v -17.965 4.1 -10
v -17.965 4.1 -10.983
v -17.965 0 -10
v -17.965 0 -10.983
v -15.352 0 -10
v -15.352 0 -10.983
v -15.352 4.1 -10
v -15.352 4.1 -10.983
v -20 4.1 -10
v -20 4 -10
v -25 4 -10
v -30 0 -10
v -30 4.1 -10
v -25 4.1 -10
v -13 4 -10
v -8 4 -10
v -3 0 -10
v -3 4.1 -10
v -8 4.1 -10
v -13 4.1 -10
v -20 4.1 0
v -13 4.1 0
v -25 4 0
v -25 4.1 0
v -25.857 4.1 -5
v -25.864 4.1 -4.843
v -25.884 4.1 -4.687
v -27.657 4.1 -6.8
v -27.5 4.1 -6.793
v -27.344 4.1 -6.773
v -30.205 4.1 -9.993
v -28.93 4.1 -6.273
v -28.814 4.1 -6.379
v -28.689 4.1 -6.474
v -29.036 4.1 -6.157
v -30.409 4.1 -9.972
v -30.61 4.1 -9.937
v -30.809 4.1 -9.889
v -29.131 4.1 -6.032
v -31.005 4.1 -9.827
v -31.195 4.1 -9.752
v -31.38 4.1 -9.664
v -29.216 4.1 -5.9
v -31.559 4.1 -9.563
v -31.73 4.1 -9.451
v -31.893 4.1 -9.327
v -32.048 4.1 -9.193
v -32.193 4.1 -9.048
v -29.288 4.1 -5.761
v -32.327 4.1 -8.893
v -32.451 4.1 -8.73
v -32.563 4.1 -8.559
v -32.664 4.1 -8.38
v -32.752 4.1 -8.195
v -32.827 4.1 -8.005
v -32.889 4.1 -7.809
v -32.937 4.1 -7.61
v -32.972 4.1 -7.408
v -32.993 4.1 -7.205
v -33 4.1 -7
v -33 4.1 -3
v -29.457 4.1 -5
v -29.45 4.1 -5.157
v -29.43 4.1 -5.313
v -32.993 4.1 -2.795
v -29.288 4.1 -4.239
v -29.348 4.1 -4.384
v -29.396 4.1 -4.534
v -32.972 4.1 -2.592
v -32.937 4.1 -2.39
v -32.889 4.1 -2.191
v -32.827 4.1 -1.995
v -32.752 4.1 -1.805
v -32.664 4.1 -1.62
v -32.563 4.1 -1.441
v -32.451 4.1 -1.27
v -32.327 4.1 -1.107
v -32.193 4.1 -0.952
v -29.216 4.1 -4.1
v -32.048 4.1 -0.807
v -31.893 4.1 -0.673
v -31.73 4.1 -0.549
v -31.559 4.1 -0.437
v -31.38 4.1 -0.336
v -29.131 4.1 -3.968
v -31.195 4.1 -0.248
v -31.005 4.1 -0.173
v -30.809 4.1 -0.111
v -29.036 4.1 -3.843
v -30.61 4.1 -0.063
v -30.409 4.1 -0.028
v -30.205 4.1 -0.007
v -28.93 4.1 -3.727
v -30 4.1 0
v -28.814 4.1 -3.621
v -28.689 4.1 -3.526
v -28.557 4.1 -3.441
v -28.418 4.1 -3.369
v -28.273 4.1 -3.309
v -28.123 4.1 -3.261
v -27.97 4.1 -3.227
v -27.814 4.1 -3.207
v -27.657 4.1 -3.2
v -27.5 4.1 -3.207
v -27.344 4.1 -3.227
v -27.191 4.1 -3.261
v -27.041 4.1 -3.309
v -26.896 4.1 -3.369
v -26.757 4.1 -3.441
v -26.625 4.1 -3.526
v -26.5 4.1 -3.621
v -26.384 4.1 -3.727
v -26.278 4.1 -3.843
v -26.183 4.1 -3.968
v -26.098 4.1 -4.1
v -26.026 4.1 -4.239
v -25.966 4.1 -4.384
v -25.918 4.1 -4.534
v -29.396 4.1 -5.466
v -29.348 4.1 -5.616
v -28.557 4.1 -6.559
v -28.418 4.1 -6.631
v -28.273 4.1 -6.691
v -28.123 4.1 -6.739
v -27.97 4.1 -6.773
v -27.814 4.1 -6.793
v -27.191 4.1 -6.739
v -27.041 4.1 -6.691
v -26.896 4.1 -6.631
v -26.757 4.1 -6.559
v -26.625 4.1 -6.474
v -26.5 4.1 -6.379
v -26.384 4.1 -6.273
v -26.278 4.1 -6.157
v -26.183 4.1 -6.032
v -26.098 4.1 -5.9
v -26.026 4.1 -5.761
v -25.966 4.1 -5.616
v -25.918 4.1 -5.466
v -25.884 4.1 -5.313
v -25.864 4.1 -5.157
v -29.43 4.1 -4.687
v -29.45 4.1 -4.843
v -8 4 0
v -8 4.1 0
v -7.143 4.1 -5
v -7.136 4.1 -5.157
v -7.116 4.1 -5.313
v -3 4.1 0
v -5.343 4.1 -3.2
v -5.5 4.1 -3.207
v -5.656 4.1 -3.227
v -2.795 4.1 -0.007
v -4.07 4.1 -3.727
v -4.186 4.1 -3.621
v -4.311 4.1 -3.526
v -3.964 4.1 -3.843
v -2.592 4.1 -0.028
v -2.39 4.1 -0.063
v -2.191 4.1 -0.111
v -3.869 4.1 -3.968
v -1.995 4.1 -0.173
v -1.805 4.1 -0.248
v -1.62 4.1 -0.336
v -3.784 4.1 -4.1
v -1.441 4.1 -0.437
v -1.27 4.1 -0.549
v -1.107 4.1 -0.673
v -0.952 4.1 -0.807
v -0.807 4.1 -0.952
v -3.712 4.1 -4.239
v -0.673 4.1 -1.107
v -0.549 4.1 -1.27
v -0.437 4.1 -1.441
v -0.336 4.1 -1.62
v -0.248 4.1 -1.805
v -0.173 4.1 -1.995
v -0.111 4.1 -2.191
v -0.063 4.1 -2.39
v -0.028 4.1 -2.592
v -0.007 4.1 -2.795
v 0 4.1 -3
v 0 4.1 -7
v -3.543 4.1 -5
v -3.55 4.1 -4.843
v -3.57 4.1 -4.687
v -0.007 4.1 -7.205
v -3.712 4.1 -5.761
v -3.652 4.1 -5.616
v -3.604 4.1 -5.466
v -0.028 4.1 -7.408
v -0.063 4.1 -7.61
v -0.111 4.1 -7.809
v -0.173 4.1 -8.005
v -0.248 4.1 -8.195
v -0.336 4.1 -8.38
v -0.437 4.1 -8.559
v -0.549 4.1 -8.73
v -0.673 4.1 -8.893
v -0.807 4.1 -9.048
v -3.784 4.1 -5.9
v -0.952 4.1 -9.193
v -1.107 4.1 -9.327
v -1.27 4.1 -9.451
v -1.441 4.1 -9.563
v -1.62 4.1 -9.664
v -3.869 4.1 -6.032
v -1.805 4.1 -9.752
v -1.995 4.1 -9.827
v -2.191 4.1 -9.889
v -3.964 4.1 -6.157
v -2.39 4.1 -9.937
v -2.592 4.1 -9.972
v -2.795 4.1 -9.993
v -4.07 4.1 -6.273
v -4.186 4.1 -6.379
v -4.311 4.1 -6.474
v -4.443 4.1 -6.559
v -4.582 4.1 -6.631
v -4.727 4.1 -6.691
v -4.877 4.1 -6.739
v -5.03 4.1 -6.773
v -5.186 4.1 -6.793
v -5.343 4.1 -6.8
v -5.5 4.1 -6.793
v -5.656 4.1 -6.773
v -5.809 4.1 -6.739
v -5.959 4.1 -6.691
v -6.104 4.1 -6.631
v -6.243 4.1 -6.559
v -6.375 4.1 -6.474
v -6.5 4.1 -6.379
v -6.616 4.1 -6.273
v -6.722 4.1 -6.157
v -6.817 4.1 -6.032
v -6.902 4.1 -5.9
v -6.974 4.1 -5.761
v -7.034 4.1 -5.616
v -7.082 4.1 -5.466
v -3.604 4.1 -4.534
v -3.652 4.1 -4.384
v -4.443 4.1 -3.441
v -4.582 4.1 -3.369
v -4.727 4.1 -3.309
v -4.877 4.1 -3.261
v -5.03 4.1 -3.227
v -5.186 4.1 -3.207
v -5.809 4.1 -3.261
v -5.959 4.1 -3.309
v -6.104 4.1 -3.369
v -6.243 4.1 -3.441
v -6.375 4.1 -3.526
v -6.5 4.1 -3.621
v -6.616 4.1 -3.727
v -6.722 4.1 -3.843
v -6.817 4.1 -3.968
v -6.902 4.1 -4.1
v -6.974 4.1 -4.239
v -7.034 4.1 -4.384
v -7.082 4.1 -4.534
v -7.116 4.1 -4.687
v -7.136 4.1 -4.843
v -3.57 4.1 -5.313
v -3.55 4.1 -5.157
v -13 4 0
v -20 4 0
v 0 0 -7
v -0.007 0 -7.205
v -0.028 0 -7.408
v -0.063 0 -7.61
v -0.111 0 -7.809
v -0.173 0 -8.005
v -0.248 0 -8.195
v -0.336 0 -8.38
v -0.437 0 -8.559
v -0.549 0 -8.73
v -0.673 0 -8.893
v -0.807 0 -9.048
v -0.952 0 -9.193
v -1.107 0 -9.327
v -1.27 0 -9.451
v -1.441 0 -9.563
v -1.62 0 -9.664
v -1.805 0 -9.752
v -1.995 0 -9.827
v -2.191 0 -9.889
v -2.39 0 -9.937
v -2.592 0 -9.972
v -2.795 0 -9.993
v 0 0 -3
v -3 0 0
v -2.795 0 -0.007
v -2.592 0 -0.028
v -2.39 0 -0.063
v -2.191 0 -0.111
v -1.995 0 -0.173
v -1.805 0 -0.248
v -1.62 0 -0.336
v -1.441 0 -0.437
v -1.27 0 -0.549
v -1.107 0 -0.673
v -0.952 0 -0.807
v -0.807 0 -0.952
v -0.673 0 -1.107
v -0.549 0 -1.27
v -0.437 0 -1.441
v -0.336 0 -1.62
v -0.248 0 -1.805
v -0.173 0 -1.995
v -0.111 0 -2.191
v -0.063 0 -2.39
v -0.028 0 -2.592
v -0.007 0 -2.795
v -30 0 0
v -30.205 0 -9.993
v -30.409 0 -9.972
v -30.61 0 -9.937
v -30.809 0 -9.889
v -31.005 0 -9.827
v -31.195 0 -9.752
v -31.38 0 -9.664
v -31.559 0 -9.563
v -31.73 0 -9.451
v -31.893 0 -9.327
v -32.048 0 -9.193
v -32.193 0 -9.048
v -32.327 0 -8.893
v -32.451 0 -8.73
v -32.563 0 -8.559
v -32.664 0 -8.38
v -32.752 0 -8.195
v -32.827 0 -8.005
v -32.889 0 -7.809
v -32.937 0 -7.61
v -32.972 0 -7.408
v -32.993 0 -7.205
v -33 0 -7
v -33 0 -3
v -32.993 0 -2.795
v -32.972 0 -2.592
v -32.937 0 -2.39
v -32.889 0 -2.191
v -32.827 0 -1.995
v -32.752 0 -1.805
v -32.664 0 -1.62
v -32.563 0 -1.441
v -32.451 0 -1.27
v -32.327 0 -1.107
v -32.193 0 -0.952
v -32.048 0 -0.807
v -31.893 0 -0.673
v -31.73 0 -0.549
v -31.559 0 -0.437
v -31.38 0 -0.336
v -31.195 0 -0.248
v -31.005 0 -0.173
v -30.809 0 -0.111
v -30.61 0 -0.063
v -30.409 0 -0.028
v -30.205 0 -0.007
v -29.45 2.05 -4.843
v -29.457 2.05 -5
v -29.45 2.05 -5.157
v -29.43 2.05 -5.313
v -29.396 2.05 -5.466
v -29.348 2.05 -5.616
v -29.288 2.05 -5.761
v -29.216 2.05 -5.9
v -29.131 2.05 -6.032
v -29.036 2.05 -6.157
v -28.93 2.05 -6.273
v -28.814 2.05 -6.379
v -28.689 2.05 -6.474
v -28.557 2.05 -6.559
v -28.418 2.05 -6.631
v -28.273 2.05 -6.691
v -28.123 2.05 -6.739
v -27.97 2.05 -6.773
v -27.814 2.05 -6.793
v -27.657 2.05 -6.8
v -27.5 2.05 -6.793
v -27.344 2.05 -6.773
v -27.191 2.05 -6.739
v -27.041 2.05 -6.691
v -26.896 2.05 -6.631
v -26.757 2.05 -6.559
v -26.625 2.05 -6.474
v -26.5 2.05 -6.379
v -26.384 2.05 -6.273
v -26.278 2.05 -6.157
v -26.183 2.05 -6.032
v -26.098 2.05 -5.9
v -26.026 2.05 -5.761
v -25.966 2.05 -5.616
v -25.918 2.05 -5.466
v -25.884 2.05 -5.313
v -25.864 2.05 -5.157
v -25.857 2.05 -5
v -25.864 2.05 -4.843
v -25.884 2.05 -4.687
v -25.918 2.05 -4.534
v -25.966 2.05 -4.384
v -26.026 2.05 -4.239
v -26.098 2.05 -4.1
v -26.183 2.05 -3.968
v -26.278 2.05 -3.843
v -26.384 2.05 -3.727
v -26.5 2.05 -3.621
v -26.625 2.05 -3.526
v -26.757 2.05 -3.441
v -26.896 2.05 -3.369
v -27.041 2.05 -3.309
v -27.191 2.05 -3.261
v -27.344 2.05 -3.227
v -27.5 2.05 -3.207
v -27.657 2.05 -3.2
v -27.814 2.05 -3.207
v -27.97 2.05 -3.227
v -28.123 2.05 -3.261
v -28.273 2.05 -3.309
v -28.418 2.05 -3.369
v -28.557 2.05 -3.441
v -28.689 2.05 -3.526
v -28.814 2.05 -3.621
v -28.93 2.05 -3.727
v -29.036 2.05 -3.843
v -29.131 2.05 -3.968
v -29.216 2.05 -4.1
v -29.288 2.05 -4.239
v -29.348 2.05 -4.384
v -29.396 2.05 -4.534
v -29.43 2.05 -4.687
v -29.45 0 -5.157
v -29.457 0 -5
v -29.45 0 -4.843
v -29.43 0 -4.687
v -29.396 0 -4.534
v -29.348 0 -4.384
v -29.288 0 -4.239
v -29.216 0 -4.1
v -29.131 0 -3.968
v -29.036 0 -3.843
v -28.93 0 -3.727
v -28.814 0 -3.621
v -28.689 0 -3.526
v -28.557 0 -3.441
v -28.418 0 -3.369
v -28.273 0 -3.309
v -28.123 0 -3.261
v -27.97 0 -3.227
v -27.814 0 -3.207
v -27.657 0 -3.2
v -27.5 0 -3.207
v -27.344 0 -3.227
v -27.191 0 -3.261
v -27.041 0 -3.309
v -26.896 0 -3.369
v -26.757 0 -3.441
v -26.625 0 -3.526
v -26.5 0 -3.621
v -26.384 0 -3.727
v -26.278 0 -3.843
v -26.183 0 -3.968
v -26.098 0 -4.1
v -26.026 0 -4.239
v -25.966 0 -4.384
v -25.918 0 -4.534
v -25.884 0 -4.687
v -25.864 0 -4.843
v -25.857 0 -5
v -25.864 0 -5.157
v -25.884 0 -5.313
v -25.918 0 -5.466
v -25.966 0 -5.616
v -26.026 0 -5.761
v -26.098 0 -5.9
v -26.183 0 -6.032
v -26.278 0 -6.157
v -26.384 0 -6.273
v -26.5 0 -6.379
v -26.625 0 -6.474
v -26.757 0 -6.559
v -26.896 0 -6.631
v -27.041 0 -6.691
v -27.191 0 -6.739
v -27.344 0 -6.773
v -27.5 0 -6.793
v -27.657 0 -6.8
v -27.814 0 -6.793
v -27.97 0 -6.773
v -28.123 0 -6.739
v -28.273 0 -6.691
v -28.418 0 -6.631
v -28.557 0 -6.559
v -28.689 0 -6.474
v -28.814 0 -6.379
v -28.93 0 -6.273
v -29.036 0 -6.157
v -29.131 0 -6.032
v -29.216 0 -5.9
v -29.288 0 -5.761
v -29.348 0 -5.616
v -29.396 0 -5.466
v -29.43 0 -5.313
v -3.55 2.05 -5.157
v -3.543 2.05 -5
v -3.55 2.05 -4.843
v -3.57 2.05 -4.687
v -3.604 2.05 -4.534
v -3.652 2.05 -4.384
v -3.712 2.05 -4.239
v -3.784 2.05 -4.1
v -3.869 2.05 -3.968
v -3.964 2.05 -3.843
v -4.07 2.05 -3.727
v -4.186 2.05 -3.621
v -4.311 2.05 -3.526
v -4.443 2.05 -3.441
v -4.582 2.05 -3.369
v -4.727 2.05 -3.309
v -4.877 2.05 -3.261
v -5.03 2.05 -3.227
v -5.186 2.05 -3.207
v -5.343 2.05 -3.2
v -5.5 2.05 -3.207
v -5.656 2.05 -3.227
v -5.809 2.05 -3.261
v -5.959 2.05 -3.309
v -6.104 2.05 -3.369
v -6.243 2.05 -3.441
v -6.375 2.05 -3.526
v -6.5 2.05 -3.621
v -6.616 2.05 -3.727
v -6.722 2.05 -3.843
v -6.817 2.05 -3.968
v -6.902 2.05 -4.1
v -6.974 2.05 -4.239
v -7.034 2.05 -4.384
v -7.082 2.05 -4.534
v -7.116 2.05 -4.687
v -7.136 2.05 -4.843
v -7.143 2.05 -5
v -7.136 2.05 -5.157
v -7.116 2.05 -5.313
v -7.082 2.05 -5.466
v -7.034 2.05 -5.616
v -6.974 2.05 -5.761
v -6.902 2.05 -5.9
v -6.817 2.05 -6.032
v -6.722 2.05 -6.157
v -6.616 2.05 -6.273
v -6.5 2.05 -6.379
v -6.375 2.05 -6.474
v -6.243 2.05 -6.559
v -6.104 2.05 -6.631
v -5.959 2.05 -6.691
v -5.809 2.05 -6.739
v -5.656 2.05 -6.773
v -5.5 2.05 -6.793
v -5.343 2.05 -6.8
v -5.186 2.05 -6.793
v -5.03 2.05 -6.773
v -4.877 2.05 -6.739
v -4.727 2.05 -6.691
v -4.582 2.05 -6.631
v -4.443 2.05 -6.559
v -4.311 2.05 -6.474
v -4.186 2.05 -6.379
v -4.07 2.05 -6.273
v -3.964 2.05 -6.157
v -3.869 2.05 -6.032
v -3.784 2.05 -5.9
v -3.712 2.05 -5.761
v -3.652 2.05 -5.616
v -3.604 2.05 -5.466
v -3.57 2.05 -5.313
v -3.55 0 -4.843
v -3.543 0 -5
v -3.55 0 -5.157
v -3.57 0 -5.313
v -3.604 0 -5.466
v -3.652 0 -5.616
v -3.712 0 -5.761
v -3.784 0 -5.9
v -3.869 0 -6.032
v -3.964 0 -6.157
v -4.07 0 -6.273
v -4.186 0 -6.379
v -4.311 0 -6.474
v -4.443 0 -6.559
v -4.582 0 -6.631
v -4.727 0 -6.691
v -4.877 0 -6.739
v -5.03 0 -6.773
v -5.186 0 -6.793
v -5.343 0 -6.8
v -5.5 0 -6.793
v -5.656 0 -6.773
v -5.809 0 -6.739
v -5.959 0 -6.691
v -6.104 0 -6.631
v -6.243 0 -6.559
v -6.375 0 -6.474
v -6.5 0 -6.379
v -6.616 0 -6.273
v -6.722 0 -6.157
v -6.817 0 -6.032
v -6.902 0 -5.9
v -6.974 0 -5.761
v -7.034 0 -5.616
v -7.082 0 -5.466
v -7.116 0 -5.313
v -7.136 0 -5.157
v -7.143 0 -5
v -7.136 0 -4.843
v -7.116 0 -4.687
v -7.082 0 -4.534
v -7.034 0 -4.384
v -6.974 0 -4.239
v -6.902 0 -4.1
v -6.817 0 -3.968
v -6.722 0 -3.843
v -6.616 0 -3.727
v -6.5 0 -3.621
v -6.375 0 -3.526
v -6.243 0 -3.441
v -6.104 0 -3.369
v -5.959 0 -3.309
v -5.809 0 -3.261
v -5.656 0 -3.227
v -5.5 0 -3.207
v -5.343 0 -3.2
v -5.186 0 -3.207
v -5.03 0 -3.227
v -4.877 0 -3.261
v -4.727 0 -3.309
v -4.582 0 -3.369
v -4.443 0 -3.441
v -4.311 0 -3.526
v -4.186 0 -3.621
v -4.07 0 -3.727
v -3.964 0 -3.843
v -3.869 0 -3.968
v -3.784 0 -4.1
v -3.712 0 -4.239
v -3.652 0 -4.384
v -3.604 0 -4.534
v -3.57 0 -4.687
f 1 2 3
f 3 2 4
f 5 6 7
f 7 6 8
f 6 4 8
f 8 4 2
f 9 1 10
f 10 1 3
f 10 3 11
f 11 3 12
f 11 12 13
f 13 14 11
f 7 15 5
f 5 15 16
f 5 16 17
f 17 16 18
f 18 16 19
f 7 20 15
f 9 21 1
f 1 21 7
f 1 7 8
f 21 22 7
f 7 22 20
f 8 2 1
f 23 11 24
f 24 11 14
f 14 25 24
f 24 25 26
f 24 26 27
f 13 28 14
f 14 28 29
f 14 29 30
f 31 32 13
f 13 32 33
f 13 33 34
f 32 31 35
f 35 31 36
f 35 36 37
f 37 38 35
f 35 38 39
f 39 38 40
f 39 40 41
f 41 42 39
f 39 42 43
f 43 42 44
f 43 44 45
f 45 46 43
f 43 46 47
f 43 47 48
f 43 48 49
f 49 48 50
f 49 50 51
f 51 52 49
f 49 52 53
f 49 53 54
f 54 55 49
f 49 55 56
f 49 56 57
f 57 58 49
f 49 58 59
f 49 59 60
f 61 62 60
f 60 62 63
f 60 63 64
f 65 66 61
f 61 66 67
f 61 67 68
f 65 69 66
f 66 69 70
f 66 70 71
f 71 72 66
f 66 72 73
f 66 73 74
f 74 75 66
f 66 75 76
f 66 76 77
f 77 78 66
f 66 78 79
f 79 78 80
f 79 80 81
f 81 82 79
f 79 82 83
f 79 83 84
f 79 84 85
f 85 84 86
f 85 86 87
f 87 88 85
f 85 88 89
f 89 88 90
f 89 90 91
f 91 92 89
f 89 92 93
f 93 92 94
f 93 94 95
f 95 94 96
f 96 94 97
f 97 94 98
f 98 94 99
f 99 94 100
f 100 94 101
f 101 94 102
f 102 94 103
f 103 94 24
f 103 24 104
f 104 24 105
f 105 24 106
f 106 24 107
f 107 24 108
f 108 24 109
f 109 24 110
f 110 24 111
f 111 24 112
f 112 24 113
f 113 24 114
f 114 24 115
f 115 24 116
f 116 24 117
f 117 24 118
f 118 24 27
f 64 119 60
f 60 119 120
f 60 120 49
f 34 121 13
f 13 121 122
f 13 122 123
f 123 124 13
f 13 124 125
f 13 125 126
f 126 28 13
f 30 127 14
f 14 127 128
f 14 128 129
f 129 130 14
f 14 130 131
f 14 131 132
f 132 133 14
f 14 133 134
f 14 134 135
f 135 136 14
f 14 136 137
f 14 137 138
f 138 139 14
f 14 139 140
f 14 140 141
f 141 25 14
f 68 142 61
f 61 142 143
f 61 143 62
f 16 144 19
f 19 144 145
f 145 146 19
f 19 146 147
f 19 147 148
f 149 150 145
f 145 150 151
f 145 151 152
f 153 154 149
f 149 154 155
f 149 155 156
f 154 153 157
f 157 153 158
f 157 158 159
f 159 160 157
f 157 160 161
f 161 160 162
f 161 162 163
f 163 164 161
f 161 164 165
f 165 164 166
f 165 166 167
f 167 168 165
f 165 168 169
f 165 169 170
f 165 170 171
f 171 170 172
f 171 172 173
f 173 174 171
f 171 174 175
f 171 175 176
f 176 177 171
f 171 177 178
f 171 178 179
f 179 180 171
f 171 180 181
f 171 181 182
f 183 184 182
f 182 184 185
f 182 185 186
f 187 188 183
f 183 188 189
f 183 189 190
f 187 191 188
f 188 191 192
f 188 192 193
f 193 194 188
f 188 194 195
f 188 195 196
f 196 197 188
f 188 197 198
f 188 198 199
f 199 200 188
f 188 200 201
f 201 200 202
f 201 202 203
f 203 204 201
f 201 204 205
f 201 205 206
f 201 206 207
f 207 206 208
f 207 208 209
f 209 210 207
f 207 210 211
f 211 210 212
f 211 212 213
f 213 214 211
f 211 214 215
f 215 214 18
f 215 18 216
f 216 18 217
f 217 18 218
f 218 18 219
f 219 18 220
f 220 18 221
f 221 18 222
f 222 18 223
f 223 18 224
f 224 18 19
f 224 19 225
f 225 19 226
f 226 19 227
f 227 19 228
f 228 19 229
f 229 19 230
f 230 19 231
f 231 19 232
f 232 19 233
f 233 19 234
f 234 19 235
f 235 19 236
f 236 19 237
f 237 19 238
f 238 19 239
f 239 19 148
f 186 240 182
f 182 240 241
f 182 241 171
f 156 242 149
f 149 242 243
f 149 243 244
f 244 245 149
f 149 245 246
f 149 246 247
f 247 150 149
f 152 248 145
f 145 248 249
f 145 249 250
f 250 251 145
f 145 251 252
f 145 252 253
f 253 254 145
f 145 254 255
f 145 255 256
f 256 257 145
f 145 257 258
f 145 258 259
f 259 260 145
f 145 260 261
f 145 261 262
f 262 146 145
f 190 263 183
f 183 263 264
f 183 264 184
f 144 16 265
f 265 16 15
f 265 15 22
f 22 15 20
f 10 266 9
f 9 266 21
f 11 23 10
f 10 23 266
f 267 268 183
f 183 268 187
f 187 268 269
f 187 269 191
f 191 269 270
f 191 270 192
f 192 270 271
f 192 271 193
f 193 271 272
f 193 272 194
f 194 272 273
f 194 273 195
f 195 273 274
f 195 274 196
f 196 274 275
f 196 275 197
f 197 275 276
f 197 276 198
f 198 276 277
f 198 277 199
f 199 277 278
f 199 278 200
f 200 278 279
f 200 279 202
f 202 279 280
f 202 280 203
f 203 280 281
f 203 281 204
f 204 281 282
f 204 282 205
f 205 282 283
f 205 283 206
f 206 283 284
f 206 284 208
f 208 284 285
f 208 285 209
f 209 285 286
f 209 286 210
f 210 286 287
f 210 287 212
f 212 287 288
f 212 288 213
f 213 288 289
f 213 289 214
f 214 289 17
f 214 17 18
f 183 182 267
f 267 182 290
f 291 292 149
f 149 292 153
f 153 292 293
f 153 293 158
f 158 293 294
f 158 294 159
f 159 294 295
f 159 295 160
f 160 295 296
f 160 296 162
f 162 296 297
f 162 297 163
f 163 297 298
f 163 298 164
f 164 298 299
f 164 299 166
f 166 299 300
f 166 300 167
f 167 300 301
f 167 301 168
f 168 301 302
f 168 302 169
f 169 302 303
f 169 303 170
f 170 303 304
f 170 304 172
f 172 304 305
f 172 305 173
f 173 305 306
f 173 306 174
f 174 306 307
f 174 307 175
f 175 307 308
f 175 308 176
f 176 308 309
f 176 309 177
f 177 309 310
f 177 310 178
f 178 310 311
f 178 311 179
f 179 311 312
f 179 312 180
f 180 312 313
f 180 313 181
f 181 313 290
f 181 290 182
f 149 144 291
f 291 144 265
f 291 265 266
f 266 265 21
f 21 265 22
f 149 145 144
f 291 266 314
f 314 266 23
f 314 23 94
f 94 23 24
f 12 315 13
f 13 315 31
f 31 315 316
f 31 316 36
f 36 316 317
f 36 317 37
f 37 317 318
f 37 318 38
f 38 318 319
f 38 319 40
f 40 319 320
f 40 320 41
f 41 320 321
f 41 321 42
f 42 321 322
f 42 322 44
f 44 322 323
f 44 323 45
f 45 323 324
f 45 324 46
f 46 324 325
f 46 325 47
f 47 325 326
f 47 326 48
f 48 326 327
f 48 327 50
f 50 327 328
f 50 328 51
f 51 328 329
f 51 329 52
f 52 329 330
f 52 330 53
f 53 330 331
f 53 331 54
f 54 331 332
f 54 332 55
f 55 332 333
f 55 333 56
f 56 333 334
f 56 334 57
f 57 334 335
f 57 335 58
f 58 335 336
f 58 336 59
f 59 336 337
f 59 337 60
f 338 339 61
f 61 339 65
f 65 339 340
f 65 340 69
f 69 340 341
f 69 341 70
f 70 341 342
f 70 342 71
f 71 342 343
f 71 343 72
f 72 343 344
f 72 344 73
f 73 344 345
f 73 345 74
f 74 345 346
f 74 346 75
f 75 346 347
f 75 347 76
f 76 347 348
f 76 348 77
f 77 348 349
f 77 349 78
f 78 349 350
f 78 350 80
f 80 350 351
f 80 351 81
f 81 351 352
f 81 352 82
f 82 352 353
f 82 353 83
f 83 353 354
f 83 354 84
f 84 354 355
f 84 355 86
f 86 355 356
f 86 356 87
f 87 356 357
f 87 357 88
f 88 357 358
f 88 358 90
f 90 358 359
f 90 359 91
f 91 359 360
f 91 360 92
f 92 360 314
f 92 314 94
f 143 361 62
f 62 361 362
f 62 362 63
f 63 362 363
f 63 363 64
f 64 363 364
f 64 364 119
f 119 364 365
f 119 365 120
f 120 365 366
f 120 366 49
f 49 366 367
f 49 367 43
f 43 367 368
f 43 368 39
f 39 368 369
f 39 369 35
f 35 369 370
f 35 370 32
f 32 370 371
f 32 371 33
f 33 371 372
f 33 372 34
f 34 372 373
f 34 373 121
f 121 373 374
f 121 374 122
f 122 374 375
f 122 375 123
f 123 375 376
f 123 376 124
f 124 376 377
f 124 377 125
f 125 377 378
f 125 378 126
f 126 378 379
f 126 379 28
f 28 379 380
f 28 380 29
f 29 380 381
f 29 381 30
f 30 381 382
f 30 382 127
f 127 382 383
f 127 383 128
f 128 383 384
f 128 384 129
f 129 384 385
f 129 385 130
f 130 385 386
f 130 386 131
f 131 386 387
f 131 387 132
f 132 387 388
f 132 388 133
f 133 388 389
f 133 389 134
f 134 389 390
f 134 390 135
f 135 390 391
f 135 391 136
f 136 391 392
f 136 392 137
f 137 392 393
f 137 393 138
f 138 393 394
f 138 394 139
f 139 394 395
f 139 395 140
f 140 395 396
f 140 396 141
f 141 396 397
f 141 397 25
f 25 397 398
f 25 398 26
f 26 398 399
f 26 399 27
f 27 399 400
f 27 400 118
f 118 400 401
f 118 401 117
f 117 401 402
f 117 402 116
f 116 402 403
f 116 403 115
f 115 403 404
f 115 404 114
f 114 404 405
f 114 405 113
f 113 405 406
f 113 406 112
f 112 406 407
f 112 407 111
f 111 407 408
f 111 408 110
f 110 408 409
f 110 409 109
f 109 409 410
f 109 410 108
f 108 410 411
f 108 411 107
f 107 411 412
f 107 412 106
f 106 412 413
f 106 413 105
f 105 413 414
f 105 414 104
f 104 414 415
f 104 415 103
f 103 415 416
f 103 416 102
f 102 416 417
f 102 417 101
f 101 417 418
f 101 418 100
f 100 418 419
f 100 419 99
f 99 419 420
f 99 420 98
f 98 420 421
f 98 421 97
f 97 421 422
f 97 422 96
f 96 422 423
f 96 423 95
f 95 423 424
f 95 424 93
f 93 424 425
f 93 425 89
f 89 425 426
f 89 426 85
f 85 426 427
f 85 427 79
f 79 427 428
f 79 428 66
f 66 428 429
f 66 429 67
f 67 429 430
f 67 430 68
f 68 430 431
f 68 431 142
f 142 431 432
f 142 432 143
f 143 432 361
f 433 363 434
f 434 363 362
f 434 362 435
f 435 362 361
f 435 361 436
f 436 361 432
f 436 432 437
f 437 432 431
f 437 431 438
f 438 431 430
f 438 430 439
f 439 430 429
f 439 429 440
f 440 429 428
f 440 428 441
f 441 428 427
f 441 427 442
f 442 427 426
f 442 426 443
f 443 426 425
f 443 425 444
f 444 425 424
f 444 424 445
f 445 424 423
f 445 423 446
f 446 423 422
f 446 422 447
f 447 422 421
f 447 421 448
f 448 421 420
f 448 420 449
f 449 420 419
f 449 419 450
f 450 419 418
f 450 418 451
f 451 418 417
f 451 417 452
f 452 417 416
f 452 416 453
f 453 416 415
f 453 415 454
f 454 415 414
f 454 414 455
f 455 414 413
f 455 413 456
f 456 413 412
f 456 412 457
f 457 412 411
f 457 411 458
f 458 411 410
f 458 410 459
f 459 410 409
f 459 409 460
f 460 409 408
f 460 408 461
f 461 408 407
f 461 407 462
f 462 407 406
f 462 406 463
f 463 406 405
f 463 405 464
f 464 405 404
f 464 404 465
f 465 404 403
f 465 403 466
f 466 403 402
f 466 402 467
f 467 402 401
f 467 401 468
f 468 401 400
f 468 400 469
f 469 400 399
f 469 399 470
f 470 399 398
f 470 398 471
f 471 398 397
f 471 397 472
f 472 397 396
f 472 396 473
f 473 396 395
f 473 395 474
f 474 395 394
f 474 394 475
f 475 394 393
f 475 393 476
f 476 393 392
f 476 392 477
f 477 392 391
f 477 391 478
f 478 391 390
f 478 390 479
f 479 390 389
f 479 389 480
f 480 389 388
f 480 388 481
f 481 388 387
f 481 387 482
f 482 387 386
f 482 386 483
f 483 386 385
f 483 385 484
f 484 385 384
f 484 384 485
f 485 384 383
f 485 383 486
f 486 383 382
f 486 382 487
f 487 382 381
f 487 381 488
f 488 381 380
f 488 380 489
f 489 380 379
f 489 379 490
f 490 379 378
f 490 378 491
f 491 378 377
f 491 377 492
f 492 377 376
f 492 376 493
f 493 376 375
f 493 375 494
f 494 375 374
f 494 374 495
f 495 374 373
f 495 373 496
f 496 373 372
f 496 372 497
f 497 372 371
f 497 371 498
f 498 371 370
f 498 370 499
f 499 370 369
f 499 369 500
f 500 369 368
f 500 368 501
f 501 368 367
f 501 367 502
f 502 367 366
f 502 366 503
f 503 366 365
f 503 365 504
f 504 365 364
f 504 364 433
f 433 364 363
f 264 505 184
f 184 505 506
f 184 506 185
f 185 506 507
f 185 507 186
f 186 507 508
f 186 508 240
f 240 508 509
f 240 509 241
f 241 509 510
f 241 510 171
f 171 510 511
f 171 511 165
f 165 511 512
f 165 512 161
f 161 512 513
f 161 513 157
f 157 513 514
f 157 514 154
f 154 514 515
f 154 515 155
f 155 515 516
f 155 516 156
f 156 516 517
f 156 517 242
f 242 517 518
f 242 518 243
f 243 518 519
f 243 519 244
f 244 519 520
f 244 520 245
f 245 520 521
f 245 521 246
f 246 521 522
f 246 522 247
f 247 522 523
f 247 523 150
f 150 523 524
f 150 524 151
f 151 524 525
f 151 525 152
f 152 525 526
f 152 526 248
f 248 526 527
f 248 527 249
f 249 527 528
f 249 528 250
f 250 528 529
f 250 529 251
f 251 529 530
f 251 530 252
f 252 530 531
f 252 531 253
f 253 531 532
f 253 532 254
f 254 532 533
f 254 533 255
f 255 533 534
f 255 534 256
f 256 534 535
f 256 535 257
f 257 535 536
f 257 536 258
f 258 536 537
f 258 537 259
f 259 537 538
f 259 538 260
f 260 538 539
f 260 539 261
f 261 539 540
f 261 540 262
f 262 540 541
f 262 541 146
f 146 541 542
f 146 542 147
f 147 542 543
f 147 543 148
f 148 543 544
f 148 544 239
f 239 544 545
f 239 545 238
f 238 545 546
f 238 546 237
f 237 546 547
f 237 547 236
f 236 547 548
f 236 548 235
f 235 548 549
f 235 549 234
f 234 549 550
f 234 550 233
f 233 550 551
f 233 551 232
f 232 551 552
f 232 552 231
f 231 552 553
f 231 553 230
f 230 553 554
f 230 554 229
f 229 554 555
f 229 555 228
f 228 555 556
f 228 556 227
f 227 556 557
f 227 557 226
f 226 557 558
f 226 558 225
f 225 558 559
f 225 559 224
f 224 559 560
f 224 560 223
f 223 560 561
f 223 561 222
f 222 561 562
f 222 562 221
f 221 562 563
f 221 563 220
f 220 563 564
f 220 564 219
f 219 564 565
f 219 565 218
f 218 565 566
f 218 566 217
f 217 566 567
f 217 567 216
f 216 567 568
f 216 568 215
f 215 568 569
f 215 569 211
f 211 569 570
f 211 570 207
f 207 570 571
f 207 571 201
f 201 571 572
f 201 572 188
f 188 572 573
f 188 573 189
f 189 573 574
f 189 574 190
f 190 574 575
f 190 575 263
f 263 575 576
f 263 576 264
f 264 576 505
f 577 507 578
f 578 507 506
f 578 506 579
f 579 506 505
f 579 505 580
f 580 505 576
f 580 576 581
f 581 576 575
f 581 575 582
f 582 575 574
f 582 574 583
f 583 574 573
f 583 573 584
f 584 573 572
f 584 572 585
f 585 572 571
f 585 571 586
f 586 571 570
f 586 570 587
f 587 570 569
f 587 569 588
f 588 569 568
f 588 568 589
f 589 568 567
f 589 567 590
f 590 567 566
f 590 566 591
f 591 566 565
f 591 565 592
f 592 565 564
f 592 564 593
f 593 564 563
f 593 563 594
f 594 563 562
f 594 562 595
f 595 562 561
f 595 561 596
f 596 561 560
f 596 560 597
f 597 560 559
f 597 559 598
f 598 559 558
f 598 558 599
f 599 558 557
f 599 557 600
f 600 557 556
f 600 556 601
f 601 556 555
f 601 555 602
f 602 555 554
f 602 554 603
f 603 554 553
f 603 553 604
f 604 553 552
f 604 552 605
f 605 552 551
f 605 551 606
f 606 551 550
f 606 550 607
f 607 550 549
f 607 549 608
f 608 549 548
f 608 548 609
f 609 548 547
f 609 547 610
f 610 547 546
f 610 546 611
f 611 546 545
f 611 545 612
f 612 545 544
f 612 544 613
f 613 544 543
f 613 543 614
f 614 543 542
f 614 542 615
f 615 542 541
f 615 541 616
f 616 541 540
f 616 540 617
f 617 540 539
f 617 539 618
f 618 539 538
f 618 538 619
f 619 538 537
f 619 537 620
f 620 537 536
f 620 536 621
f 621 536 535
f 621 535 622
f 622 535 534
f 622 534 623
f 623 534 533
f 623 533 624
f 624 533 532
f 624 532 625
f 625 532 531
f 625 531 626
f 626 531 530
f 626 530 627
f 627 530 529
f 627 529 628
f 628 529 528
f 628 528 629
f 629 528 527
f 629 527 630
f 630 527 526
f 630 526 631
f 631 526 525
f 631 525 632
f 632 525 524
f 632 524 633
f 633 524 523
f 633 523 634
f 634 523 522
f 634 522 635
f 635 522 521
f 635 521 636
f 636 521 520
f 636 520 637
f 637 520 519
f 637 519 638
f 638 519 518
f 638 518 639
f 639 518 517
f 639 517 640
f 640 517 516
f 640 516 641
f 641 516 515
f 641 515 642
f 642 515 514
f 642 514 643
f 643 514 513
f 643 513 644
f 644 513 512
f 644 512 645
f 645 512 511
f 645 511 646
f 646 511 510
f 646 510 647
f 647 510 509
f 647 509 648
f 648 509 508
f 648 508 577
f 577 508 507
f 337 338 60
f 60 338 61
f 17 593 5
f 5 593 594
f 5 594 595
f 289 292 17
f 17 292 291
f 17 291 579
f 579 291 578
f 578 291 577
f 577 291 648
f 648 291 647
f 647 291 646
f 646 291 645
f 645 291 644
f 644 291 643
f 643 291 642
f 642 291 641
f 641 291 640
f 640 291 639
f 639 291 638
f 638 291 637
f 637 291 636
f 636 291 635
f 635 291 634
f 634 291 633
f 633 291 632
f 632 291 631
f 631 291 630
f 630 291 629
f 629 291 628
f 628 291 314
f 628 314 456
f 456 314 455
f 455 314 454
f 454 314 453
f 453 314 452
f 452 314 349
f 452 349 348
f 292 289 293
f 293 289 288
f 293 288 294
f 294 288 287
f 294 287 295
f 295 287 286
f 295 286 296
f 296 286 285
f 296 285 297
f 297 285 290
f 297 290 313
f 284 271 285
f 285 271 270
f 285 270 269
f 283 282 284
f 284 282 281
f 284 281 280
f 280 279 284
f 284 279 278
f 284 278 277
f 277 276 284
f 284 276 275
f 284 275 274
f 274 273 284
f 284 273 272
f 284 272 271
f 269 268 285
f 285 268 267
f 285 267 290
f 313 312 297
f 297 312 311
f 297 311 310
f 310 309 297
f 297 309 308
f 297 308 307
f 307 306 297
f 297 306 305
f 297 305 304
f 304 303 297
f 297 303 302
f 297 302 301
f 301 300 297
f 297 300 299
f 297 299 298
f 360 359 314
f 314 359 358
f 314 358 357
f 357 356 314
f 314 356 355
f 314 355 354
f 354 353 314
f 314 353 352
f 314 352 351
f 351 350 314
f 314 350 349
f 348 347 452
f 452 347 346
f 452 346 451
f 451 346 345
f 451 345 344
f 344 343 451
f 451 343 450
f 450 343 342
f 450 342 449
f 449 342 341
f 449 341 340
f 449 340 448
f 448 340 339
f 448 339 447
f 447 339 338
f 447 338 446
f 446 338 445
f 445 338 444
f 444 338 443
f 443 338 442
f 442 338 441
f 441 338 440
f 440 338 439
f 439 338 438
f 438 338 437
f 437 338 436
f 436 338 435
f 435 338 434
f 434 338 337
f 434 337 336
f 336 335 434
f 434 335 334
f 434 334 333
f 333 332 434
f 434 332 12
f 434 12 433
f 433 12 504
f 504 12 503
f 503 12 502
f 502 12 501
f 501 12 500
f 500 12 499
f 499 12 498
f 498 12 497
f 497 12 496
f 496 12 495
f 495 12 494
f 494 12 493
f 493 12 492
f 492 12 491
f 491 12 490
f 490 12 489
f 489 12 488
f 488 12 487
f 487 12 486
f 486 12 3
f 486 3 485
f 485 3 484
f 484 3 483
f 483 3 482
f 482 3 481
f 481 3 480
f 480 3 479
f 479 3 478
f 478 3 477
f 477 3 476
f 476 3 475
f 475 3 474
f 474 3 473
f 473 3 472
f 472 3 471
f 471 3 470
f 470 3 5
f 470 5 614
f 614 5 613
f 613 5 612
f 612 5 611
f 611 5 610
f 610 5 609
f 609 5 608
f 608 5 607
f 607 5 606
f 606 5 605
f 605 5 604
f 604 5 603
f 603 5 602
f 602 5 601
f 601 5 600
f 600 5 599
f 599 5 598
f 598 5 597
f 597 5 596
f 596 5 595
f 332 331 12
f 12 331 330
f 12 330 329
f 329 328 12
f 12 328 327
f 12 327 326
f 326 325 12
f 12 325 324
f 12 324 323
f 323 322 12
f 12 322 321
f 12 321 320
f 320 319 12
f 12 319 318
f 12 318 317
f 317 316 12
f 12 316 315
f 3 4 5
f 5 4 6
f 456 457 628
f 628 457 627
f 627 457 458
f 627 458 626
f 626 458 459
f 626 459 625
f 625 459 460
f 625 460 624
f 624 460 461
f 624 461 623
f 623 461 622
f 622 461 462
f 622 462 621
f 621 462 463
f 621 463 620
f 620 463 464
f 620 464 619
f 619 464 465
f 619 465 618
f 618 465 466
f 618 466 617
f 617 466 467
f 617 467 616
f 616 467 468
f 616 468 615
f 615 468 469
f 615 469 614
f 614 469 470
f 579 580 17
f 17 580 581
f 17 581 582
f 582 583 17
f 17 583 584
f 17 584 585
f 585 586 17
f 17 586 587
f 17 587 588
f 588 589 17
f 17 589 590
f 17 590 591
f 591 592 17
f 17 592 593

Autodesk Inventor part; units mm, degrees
ref_plane "YZ Plane" through (0, 0, 0) normal (1, 0, 0) x (0, 1, 0)
ref_plane "XZ Plane" through (0, 0, 0) normal (0, 1, 0) x (-1, 0, 0)
sketch "Sketch1" plane through (0, 0, 0) normal (0, 1, 0) x (-1, 0, 0)
  line L0 (0, 0) -> (33, 0)
  line L1 (33, 0) -> (33, -10)
  line L2 (33, -10) -> (0, -10)
  line L3 (0, -10) -> (0, 0)
  dimension "d0" = 33
  dimension "d1" = 10
extrude "Extrusion1" add sketch "Sketch1" along normal blind 4
sketch "Sketch2" plane through (0, 4, 0) normal (0, 1, 0) x (1, 0, 0)
  circle A0 centre (-5.343, 5) radius 1.8
  point P0 (0, 0)
  dimension "d9" = 3.6
extrude "Extrusion2" cut sketch "Sketch2" against normal blind 4
ref_plane "Work Plane1" through (-16.5, 0, 0) normal (1, 0, 0) x (0, 0, -1)
mirror "Mirror1" about plane through (-16.5, 0, 0) normal (1, 0, 0) of "Extrusion2"
fillet "Fillet1" radius 3 4 edges at (-33, 2, 0) (-33, 2, -10) (0, 2, 0) (0, 2, -10)
sketch "Sketch3" plane through (0, 4, 0) normal (0, 1, 0) x (1, 0, 0)
  line L0 (-30, 0) -> (-3, 0) projected
  line L1 (-30, 10) -> (-3, 10) projected
  line L2 (-20, 0) -> (-13, 0)
  line L3 (-13, 0) -> (-13, 10)
  line L4 (-13, 10) -> (-20, 10)
  line L5 (-20, 10) -> (-20, 0)
  point P0 (0, 0)
  dimension "d10" = 7
  dimension "d11" = 10
extrude "Extrusion3" add sketch "Sketch3" along normal blind 0.1
sketch "Sketch4" plane through (0, 4, 0) normal (0, 1, 0) x (1, 0, 0)
  line L0 (-3, 0) -> (-8, 0)
  line L1 (-8, 0) -> (-8, 10)
  line L2 (-8, 10) -> (-3, 10)
  line L3 (0, 7) -> (0, 3)
  arc A0 (-3, 0) -> (0, 3) centre (-3, 3) ccw
  arc A1 (0, 7) -> (-3, 10) centre (-3, 7) ccw
  circle A2 centre (-5.343, 5) radius 1.8 projected
  circle A3 centre (-5.343, 5) radius 1.8
  point P0 (0, 0)
  point P1 (0, 10)
  dimension "d14" = 8
  dimension "d15" = 10
  dimension "d16" = 3
extrude "Extrusion4" add sketch "Sketch4" along normal blind 0.1
mirror "Mirror2" about plane through (-16.5, 0, 0) normal (1, 0, 0) of "Extrusion4"
sketch "Sketch6" plane through (0, 4.1, 0) normal (0, 1, 0) x (1, 0, 0)
  line L0 (-15.3522, 9.1051) -> (-17.9653, 9.1051)
  line L1 (-17.9653, 9.1051) -> (-17.9653, 10.9833)
  line L2 (-17.9653, 10.9833) -> (-15.3522, 10.9833)
  line L3 (-15.3522, 10.9833) -> (-15.3522, 9.1051)
  point P0 (0, 0)
extrude "Extrusion6" add sketch "Sketch6" against normal up to surface (4.1 mm away)
properties part number "8 peristaltic pump clamp 0.1mm"
